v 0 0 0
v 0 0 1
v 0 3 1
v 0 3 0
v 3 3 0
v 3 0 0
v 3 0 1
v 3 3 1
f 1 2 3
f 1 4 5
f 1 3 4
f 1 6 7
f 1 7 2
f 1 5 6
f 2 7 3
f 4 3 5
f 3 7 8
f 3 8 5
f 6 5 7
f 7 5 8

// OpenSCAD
/* Warning, this is a very basic generator with a lot of approximation 
input data : [VQFN, 8NX, 3x3x1.0mm, 16, , C, C04-00404C]
generated by com.zoubworld.electronics.cad.model3d.Basic
Date : Sun Feb 15 10:50:48 CET 2026
*/

//body
color("black")
translate([0,0,0])
cube([3.0,3.0,1.0], center=false);
